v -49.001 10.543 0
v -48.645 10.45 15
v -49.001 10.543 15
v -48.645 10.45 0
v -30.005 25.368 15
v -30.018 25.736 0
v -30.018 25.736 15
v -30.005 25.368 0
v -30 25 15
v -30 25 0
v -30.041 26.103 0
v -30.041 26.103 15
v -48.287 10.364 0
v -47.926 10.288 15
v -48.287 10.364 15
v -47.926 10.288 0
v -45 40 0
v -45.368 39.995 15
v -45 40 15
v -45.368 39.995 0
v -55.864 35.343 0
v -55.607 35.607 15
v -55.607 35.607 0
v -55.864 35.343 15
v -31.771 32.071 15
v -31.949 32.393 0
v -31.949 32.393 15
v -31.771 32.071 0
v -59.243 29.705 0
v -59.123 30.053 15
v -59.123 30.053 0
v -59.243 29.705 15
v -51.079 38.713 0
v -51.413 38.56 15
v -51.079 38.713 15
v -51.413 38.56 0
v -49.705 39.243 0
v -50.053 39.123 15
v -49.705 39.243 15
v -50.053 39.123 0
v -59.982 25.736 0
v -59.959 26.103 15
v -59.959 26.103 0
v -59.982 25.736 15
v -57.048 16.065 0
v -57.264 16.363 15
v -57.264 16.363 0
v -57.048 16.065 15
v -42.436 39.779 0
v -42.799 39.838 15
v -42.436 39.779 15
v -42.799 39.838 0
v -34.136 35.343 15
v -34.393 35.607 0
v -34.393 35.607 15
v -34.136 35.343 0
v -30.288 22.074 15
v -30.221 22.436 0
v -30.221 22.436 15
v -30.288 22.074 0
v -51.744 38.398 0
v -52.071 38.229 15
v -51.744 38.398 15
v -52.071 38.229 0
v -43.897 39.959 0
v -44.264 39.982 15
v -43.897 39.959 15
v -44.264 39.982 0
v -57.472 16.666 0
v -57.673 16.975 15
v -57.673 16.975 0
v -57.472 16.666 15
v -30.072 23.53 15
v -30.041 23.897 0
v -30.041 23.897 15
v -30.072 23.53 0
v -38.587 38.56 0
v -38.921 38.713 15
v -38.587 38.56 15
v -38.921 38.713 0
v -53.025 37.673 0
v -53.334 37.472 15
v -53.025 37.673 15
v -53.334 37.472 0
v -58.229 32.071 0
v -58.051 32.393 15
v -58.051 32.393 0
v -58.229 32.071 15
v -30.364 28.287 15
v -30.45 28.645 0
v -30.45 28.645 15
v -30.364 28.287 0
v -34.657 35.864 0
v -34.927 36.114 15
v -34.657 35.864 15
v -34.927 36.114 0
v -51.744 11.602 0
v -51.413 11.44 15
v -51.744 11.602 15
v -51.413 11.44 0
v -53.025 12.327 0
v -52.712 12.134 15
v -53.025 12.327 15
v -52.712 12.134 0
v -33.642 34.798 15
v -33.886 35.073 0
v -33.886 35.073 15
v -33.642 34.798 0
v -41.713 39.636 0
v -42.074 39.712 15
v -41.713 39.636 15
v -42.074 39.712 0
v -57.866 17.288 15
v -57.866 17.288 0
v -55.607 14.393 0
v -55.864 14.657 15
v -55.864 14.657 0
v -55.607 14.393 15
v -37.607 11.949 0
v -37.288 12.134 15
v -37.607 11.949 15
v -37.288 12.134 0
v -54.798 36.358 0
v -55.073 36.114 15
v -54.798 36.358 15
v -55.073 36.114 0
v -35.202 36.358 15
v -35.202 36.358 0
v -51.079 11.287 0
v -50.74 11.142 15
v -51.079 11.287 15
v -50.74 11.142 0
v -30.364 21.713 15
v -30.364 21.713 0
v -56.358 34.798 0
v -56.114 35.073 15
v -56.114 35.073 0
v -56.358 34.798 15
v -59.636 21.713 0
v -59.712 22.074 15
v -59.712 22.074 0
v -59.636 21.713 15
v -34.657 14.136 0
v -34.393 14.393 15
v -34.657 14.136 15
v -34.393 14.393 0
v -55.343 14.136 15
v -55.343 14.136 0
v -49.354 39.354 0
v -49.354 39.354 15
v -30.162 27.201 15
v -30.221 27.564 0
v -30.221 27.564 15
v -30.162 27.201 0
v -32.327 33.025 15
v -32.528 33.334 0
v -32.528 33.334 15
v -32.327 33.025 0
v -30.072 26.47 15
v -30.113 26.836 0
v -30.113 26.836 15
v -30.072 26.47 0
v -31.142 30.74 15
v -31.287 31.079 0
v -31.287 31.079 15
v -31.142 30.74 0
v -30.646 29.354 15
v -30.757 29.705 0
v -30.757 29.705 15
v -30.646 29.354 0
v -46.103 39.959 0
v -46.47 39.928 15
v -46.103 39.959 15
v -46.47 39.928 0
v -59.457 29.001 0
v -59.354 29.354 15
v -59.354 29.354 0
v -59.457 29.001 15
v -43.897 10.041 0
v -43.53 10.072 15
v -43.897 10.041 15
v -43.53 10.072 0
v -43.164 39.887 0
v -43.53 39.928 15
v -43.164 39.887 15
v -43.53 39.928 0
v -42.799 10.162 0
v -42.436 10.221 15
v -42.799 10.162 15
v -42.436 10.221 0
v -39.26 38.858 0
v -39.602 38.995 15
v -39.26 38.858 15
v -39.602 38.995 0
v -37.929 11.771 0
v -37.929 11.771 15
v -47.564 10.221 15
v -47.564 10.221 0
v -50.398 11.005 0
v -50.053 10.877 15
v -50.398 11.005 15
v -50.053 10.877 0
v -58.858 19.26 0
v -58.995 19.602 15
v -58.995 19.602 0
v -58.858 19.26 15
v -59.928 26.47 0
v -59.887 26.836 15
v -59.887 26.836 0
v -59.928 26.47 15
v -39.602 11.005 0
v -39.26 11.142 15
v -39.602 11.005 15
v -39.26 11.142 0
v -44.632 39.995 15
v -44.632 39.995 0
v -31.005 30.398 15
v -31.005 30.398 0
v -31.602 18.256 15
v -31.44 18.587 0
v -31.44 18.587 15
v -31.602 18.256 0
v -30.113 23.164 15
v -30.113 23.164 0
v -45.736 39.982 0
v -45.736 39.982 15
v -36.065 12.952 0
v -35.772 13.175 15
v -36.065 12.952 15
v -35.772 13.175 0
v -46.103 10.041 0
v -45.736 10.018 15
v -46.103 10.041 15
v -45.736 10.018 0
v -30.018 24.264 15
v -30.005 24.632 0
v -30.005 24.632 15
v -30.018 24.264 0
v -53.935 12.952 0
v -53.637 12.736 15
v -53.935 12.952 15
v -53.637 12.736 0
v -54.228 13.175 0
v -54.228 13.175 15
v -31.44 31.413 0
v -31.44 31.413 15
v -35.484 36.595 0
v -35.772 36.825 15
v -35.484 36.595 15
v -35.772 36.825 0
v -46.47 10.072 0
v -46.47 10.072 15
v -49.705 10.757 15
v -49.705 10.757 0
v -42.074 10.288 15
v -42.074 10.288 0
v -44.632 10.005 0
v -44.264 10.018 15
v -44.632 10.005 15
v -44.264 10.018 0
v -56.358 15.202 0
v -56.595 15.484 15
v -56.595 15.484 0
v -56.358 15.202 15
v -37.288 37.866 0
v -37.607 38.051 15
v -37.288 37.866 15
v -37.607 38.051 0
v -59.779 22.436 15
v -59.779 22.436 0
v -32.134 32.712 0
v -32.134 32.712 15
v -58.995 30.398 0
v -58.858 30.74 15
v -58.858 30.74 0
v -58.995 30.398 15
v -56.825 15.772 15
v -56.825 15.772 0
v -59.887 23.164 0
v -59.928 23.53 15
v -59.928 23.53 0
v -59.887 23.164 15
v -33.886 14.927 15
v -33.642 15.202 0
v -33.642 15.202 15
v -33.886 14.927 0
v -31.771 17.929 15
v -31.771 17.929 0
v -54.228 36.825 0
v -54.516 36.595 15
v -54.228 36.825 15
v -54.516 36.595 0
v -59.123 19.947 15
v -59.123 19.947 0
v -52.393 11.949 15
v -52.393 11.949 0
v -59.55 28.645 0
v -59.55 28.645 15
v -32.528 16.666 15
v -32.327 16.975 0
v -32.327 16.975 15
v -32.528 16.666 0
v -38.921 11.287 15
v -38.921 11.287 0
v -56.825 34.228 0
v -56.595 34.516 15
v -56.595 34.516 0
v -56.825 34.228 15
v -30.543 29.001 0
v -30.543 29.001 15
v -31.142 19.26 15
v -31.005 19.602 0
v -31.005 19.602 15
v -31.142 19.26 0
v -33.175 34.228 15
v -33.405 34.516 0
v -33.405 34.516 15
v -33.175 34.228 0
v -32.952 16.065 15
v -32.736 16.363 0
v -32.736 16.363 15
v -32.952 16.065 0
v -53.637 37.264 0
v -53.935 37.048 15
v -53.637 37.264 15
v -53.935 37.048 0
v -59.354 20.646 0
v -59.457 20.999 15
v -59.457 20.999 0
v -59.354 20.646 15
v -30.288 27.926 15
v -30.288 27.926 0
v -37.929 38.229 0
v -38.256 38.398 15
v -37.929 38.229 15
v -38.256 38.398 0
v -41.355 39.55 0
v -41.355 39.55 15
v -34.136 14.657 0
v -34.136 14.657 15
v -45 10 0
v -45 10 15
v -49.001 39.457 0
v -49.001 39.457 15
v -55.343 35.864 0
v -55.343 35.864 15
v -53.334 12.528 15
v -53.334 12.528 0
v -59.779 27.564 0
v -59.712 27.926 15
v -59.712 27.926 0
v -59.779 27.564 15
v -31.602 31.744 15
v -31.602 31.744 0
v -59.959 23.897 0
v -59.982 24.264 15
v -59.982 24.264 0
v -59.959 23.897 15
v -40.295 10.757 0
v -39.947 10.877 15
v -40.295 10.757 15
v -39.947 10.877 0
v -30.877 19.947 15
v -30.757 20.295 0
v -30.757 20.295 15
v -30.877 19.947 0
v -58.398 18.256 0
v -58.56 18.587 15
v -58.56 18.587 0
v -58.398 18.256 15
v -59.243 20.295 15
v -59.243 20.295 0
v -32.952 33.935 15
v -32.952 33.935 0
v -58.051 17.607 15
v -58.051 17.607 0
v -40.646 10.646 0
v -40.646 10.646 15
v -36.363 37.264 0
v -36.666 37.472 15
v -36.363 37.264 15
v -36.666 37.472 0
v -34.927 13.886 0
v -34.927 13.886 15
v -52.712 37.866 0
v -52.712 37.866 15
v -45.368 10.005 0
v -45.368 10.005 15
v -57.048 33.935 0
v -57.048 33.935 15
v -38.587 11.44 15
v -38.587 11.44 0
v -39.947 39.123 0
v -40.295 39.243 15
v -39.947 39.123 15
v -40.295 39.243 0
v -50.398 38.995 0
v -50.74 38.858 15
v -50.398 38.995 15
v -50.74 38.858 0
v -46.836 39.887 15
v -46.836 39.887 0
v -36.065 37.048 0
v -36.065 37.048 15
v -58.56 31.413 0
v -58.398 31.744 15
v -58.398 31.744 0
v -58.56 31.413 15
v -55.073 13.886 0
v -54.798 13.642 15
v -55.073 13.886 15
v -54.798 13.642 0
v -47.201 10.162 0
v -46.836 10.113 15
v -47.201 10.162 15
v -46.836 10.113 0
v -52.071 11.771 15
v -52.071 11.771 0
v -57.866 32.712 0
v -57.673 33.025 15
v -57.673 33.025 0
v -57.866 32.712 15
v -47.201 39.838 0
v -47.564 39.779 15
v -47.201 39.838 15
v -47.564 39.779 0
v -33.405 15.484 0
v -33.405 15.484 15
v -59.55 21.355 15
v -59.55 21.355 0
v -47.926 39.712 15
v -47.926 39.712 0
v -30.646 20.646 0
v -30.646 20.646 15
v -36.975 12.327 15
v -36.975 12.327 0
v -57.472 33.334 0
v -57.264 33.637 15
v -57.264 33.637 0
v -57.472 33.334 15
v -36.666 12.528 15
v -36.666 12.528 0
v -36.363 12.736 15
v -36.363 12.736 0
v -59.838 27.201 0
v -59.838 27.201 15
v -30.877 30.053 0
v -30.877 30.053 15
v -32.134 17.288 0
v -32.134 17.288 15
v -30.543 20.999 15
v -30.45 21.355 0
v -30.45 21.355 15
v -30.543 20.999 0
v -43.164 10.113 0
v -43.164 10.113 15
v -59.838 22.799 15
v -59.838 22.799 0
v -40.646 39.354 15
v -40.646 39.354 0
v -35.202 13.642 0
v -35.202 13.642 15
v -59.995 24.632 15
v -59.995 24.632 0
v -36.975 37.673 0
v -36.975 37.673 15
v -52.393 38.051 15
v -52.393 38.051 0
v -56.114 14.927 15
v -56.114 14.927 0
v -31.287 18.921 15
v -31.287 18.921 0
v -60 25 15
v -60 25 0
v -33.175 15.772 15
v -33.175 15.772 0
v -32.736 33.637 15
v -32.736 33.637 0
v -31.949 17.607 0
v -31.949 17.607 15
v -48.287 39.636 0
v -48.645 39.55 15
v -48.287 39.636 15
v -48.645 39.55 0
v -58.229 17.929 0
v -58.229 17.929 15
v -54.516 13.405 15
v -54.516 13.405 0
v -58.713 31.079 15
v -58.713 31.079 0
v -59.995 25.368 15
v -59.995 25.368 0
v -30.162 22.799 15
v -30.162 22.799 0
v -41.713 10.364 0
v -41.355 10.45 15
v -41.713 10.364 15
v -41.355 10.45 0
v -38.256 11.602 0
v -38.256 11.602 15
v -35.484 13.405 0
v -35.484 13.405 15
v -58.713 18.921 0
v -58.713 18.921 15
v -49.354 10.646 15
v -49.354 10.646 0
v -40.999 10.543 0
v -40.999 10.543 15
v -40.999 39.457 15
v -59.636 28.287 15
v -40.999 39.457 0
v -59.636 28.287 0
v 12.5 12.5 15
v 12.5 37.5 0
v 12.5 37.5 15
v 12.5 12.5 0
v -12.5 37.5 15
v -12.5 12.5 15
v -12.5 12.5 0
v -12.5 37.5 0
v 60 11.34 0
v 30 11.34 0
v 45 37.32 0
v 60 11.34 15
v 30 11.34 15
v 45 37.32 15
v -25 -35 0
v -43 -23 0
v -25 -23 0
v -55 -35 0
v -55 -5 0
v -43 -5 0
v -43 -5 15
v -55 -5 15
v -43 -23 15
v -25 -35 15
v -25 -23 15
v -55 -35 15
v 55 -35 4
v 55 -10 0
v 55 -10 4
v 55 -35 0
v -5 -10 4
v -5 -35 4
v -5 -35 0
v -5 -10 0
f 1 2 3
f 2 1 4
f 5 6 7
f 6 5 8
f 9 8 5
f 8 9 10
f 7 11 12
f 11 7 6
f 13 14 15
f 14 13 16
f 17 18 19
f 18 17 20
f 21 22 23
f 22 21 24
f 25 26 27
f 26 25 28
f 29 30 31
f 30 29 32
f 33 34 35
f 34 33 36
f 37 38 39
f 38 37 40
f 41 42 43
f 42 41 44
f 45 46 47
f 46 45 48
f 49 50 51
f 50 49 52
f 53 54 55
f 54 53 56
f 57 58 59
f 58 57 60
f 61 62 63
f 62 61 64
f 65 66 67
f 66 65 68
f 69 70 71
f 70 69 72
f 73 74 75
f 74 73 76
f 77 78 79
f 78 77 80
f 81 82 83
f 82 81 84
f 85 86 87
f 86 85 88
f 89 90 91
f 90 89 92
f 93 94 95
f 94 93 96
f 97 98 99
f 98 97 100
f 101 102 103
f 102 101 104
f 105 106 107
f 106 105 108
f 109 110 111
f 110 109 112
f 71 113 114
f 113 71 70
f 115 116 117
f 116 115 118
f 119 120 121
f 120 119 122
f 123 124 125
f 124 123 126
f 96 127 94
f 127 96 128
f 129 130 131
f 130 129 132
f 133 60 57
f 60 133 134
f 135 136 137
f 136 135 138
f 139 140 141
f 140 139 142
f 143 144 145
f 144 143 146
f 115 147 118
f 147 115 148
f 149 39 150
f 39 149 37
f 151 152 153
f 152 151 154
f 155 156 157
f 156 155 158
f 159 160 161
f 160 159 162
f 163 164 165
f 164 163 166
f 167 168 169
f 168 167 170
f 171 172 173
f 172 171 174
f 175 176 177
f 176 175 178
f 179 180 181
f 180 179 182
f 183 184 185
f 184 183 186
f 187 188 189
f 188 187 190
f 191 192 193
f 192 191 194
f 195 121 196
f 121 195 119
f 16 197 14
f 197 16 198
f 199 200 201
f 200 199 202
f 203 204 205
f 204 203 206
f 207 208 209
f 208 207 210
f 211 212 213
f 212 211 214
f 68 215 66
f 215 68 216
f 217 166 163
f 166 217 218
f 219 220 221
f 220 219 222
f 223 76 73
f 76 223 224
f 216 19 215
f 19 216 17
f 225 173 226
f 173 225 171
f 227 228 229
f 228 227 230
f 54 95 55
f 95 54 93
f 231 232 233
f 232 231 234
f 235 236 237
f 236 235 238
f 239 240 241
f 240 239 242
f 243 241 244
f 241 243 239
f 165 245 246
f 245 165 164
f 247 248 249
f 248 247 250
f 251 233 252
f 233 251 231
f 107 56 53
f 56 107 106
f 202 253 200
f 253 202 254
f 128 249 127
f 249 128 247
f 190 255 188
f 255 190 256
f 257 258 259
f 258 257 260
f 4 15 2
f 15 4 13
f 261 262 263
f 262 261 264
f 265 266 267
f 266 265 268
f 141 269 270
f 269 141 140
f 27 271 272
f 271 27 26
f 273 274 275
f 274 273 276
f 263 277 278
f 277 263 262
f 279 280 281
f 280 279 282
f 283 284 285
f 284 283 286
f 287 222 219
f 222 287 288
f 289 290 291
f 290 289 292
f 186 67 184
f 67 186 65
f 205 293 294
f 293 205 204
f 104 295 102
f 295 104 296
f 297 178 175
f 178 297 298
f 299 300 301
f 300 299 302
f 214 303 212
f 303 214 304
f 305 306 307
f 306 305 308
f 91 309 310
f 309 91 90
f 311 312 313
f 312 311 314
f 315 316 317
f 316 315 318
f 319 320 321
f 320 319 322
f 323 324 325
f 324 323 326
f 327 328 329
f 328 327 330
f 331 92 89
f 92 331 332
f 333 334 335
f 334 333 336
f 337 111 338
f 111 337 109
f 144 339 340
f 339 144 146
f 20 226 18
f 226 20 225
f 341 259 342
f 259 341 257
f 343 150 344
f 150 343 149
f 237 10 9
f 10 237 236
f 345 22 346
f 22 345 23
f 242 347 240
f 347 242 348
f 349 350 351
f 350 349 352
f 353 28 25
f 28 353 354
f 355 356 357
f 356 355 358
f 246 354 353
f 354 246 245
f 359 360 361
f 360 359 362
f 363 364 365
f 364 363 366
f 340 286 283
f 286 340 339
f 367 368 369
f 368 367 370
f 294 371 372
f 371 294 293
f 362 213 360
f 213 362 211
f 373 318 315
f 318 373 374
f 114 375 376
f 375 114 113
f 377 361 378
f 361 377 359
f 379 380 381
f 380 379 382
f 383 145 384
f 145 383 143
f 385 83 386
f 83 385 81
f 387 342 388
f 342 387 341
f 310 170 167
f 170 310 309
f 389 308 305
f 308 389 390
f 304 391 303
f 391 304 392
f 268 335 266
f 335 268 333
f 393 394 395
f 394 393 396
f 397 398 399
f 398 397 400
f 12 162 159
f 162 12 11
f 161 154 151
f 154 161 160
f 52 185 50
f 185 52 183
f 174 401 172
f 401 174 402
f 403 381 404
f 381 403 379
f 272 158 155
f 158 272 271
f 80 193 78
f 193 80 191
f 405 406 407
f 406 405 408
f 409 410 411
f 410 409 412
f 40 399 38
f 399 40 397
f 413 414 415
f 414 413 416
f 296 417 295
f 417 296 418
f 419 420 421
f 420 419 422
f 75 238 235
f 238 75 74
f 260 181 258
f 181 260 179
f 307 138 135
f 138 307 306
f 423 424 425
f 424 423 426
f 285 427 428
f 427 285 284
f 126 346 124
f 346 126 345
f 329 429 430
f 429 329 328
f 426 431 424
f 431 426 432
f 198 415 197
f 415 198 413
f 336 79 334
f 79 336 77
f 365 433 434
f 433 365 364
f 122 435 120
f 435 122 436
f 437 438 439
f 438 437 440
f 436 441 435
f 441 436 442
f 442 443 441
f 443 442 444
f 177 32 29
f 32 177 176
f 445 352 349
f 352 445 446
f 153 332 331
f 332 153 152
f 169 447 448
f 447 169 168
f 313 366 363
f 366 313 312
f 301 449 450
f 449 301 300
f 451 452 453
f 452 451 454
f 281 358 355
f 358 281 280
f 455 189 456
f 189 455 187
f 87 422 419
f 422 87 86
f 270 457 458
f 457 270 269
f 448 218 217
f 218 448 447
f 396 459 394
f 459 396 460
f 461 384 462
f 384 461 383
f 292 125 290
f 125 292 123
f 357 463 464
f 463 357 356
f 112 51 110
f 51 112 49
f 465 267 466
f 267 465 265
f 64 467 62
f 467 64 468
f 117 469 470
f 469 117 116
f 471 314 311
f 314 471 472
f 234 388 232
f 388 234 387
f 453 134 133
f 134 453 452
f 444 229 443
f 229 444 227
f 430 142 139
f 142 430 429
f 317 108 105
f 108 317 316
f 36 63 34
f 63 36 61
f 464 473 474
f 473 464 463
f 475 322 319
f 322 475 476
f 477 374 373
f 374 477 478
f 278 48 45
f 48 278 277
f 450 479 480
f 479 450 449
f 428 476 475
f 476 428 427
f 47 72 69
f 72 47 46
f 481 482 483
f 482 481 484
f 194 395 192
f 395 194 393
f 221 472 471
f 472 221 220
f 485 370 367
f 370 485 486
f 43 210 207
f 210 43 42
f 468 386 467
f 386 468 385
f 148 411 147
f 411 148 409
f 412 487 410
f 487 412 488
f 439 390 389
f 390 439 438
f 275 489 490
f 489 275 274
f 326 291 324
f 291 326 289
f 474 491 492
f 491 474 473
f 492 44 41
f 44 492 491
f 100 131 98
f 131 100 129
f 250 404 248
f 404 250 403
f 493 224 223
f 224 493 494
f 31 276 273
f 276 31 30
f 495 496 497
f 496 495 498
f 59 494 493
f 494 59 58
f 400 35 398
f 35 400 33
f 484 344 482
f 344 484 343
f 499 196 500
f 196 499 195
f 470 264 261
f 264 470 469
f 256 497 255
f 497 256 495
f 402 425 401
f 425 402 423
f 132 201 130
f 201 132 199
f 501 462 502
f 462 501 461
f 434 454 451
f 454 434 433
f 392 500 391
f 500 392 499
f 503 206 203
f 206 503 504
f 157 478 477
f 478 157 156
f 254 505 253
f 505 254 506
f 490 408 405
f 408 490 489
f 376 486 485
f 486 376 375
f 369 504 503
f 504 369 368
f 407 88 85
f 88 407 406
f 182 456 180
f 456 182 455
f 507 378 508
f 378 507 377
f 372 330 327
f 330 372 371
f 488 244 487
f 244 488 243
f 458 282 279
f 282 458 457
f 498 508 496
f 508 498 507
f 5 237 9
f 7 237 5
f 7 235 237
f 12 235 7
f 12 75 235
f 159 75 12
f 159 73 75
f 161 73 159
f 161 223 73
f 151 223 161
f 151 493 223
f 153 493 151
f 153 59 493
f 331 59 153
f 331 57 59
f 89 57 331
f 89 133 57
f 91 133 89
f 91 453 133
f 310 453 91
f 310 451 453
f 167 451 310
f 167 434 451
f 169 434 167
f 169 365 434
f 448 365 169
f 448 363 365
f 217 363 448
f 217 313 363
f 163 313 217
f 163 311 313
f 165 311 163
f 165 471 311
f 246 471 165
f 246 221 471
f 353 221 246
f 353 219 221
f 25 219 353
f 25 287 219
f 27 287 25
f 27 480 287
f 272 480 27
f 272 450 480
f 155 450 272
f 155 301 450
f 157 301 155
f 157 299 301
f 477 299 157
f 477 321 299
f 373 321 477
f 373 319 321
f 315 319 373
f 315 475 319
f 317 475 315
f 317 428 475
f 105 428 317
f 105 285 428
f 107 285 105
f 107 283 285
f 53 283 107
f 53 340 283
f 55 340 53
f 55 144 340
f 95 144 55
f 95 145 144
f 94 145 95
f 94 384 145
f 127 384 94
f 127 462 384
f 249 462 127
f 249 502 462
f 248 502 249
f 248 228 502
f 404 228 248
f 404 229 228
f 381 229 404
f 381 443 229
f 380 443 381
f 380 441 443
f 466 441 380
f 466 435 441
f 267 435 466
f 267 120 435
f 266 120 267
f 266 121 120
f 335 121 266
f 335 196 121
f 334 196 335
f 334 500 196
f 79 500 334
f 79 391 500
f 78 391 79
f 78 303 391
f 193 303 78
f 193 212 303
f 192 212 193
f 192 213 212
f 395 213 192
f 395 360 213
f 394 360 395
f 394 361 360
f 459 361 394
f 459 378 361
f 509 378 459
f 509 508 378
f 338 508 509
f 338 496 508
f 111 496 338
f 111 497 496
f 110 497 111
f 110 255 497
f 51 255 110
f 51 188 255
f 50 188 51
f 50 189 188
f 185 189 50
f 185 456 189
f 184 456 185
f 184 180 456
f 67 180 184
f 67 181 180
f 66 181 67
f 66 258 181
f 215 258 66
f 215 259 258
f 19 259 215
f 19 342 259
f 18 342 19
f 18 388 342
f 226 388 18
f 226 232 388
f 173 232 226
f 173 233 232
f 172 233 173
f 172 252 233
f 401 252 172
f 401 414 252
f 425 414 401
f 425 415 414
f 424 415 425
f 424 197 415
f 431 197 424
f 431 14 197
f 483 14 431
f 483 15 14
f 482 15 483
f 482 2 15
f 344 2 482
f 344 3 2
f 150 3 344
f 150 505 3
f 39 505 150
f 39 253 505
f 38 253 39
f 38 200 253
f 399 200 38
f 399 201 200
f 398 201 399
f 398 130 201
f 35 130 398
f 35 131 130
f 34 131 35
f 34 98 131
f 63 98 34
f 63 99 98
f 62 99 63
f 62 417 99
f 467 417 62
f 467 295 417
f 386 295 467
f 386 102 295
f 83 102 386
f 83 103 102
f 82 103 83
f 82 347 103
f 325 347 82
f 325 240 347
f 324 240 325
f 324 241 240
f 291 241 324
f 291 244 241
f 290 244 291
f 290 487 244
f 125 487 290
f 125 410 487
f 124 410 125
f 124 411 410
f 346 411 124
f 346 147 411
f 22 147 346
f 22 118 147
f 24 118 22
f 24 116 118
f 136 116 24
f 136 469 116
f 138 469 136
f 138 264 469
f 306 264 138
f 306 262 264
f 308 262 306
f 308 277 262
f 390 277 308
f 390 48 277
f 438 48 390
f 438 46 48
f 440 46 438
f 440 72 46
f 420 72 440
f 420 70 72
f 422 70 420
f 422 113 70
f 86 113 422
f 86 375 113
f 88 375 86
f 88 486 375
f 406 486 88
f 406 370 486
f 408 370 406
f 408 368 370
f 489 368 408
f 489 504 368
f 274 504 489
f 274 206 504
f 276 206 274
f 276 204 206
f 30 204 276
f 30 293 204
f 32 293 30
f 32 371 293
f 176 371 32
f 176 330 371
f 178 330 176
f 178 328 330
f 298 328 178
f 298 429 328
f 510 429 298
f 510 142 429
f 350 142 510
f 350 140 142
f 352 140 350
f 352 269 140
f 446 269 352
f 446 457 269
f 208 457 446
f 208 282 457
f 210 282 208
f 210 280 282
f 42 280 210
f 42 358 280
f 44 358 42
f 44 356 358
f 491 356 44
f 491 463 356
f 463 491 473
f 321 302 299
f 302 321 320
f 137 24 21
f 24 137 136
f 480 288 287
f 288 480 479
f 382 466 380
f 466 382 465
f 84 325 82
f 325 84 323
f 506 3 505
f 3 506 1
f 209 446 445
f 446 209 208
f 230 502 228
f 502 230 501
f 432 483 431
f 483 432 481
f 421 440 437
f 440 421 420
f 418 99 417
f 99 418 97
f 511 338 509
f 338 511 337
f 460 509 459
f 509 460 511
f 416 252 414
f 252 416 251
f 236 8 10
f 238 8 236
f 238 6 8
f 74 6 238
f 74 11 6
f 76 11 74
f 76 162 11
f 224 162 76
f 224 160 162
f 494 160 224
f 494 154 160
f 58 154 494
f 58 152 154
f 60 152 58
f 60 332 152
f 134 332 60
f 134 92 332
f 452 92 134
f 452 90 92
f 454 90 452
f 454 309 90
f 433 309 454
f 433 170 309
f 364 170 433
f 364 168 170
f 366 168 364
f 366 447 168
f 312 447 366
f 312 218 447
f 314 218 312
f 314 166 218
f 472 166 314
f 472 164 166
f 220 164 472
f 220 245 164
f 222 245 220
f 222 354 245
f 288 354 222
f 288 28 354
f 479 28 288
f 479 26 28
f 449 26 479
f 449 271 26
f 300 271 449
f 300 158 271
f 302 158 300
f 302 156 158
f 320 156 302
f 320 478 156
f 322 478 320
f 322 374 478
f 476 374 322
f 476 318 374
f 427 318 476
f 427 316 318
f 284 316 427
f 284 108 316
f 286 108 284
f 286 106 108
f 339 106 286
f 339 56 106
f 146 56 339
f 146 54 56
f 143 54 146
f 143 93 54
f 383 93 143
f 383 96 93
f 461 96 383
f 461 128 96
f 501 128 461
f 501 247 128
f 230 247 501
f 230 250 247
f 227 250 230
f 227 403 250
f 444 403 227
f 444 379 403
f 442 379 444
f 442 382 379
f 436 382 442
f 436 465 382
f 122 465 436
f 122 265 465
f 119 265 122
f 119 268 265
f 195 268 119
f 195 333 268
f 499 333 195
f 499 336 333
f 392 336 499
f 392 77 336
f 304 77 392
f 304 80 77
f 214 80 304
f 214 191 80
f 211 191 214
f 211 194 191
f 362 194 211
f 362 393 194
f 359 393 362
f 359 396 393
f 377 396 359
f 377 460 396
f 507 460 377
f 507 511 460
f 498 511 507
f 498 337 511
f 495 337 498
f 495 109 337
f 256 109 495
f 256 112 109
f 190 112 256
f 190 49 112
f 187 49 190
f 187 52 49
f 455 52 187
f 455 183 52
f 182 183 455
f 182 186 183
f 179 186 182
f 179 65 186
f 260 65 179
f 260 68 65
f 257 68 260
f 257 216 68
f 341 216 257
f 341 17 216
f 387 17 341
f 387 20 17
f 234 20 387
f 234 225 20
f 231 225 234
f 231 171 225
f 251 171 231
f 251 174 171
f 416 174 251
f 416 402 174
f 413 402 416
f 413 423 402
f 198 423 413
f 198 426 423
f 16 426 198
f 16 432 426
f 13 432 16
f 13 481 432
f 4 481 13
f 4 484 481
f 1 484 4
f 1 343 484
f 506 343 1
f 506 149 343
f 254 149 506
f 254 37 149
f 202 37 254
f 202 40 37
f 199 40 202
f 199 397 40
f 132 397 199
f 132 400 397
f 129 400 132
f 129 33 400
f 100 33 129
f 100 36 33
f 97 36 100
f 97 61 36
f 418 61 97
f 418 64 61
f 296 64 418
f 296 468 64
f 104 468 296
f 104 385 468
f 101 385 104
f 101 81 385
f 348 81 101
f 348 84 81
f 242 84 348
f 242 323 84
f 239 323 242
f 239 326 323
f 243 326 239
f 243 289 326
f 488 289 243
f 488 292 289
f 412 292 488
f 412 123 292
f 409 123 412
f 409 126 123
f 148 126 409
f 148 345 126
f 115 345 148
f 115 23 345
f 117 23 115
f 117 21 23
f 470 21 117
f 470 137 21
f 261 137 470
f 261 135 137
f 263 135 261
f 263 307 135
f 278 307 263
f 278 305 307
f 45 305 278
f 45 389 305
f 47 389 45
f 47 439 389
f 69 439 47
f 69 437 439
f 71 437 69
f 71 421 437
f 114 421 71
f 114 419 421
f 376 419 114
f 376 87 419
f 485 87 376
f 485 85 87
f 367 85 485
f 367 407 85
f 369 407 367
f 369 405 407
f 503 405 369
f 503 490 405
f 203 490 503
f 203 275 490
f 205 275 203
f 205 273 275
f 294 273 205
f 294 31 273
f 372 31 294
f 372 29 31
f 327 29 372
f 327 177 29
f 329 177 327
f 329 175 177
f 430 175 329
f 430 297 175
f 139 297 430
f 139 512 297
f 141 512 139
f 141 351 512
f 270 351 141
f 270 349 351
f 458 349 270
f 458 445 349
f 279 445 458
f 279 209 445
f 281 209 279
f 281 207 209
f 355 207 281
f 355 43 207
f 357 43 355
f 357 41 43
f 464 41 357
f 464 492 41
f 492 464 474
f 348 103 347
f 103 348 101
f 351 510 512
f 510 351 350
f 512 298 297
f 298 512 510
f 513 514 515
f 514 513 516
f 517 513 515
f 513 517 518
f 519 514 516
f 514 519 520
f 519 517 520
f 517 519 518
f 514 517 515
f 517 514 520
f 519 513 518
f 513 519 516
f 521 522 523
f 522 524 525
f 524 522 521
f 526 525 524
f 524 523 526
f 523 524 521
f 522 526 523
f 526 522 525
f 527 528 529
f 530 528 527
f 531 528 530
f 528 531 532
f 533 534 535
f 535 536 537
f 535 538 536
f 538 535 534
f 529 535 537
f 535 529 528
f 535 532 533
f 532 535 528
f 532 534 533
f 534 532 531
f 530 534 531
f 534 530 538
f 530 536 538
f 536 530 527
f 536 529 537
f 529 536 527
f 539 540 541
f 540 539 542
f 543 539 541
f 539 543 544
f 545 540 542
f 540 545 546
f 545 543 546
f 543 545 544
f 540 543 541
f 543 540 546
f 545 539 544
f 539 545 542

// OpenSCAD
// Tinmans Tuning Guide, chapter 08: seam and surface test.
// Five separate pieces, so every layer has long travels between islands and short travels
// between walls inside each island. Find each seam in the preview or G-code before judging it.
h = 15;        // wall pieces
hb = 4;        // flat top-surface block
// A: round, seam on a curve
translate([-45, 25, 0]) cylinder(d = 30, h = h, $fn = 256);
// B: square, four sharp 90-degree convex corners
translate([-12.5, 12.5, 0]) cube([25, 25, h]);
// C: equilateral triangle, three 60-degree corners (side 30)
translate([45, 20, 0]) linear_extrude(h) polygon([[-15, -8.66], [15, -8.66], [0, 17.32]]);
// D: L shape, five convex corners and one concave corner
translate([-55, -35, 0]) linear_extrude(h) polygon([[0,0],[30,0],[30,12],[12,12],[12,30],[0,30]]);
// E: flat block for the top surface (60 x 25, 4 mm)
translate([-5, -35, 0]) cube([60, 25, hb]);
